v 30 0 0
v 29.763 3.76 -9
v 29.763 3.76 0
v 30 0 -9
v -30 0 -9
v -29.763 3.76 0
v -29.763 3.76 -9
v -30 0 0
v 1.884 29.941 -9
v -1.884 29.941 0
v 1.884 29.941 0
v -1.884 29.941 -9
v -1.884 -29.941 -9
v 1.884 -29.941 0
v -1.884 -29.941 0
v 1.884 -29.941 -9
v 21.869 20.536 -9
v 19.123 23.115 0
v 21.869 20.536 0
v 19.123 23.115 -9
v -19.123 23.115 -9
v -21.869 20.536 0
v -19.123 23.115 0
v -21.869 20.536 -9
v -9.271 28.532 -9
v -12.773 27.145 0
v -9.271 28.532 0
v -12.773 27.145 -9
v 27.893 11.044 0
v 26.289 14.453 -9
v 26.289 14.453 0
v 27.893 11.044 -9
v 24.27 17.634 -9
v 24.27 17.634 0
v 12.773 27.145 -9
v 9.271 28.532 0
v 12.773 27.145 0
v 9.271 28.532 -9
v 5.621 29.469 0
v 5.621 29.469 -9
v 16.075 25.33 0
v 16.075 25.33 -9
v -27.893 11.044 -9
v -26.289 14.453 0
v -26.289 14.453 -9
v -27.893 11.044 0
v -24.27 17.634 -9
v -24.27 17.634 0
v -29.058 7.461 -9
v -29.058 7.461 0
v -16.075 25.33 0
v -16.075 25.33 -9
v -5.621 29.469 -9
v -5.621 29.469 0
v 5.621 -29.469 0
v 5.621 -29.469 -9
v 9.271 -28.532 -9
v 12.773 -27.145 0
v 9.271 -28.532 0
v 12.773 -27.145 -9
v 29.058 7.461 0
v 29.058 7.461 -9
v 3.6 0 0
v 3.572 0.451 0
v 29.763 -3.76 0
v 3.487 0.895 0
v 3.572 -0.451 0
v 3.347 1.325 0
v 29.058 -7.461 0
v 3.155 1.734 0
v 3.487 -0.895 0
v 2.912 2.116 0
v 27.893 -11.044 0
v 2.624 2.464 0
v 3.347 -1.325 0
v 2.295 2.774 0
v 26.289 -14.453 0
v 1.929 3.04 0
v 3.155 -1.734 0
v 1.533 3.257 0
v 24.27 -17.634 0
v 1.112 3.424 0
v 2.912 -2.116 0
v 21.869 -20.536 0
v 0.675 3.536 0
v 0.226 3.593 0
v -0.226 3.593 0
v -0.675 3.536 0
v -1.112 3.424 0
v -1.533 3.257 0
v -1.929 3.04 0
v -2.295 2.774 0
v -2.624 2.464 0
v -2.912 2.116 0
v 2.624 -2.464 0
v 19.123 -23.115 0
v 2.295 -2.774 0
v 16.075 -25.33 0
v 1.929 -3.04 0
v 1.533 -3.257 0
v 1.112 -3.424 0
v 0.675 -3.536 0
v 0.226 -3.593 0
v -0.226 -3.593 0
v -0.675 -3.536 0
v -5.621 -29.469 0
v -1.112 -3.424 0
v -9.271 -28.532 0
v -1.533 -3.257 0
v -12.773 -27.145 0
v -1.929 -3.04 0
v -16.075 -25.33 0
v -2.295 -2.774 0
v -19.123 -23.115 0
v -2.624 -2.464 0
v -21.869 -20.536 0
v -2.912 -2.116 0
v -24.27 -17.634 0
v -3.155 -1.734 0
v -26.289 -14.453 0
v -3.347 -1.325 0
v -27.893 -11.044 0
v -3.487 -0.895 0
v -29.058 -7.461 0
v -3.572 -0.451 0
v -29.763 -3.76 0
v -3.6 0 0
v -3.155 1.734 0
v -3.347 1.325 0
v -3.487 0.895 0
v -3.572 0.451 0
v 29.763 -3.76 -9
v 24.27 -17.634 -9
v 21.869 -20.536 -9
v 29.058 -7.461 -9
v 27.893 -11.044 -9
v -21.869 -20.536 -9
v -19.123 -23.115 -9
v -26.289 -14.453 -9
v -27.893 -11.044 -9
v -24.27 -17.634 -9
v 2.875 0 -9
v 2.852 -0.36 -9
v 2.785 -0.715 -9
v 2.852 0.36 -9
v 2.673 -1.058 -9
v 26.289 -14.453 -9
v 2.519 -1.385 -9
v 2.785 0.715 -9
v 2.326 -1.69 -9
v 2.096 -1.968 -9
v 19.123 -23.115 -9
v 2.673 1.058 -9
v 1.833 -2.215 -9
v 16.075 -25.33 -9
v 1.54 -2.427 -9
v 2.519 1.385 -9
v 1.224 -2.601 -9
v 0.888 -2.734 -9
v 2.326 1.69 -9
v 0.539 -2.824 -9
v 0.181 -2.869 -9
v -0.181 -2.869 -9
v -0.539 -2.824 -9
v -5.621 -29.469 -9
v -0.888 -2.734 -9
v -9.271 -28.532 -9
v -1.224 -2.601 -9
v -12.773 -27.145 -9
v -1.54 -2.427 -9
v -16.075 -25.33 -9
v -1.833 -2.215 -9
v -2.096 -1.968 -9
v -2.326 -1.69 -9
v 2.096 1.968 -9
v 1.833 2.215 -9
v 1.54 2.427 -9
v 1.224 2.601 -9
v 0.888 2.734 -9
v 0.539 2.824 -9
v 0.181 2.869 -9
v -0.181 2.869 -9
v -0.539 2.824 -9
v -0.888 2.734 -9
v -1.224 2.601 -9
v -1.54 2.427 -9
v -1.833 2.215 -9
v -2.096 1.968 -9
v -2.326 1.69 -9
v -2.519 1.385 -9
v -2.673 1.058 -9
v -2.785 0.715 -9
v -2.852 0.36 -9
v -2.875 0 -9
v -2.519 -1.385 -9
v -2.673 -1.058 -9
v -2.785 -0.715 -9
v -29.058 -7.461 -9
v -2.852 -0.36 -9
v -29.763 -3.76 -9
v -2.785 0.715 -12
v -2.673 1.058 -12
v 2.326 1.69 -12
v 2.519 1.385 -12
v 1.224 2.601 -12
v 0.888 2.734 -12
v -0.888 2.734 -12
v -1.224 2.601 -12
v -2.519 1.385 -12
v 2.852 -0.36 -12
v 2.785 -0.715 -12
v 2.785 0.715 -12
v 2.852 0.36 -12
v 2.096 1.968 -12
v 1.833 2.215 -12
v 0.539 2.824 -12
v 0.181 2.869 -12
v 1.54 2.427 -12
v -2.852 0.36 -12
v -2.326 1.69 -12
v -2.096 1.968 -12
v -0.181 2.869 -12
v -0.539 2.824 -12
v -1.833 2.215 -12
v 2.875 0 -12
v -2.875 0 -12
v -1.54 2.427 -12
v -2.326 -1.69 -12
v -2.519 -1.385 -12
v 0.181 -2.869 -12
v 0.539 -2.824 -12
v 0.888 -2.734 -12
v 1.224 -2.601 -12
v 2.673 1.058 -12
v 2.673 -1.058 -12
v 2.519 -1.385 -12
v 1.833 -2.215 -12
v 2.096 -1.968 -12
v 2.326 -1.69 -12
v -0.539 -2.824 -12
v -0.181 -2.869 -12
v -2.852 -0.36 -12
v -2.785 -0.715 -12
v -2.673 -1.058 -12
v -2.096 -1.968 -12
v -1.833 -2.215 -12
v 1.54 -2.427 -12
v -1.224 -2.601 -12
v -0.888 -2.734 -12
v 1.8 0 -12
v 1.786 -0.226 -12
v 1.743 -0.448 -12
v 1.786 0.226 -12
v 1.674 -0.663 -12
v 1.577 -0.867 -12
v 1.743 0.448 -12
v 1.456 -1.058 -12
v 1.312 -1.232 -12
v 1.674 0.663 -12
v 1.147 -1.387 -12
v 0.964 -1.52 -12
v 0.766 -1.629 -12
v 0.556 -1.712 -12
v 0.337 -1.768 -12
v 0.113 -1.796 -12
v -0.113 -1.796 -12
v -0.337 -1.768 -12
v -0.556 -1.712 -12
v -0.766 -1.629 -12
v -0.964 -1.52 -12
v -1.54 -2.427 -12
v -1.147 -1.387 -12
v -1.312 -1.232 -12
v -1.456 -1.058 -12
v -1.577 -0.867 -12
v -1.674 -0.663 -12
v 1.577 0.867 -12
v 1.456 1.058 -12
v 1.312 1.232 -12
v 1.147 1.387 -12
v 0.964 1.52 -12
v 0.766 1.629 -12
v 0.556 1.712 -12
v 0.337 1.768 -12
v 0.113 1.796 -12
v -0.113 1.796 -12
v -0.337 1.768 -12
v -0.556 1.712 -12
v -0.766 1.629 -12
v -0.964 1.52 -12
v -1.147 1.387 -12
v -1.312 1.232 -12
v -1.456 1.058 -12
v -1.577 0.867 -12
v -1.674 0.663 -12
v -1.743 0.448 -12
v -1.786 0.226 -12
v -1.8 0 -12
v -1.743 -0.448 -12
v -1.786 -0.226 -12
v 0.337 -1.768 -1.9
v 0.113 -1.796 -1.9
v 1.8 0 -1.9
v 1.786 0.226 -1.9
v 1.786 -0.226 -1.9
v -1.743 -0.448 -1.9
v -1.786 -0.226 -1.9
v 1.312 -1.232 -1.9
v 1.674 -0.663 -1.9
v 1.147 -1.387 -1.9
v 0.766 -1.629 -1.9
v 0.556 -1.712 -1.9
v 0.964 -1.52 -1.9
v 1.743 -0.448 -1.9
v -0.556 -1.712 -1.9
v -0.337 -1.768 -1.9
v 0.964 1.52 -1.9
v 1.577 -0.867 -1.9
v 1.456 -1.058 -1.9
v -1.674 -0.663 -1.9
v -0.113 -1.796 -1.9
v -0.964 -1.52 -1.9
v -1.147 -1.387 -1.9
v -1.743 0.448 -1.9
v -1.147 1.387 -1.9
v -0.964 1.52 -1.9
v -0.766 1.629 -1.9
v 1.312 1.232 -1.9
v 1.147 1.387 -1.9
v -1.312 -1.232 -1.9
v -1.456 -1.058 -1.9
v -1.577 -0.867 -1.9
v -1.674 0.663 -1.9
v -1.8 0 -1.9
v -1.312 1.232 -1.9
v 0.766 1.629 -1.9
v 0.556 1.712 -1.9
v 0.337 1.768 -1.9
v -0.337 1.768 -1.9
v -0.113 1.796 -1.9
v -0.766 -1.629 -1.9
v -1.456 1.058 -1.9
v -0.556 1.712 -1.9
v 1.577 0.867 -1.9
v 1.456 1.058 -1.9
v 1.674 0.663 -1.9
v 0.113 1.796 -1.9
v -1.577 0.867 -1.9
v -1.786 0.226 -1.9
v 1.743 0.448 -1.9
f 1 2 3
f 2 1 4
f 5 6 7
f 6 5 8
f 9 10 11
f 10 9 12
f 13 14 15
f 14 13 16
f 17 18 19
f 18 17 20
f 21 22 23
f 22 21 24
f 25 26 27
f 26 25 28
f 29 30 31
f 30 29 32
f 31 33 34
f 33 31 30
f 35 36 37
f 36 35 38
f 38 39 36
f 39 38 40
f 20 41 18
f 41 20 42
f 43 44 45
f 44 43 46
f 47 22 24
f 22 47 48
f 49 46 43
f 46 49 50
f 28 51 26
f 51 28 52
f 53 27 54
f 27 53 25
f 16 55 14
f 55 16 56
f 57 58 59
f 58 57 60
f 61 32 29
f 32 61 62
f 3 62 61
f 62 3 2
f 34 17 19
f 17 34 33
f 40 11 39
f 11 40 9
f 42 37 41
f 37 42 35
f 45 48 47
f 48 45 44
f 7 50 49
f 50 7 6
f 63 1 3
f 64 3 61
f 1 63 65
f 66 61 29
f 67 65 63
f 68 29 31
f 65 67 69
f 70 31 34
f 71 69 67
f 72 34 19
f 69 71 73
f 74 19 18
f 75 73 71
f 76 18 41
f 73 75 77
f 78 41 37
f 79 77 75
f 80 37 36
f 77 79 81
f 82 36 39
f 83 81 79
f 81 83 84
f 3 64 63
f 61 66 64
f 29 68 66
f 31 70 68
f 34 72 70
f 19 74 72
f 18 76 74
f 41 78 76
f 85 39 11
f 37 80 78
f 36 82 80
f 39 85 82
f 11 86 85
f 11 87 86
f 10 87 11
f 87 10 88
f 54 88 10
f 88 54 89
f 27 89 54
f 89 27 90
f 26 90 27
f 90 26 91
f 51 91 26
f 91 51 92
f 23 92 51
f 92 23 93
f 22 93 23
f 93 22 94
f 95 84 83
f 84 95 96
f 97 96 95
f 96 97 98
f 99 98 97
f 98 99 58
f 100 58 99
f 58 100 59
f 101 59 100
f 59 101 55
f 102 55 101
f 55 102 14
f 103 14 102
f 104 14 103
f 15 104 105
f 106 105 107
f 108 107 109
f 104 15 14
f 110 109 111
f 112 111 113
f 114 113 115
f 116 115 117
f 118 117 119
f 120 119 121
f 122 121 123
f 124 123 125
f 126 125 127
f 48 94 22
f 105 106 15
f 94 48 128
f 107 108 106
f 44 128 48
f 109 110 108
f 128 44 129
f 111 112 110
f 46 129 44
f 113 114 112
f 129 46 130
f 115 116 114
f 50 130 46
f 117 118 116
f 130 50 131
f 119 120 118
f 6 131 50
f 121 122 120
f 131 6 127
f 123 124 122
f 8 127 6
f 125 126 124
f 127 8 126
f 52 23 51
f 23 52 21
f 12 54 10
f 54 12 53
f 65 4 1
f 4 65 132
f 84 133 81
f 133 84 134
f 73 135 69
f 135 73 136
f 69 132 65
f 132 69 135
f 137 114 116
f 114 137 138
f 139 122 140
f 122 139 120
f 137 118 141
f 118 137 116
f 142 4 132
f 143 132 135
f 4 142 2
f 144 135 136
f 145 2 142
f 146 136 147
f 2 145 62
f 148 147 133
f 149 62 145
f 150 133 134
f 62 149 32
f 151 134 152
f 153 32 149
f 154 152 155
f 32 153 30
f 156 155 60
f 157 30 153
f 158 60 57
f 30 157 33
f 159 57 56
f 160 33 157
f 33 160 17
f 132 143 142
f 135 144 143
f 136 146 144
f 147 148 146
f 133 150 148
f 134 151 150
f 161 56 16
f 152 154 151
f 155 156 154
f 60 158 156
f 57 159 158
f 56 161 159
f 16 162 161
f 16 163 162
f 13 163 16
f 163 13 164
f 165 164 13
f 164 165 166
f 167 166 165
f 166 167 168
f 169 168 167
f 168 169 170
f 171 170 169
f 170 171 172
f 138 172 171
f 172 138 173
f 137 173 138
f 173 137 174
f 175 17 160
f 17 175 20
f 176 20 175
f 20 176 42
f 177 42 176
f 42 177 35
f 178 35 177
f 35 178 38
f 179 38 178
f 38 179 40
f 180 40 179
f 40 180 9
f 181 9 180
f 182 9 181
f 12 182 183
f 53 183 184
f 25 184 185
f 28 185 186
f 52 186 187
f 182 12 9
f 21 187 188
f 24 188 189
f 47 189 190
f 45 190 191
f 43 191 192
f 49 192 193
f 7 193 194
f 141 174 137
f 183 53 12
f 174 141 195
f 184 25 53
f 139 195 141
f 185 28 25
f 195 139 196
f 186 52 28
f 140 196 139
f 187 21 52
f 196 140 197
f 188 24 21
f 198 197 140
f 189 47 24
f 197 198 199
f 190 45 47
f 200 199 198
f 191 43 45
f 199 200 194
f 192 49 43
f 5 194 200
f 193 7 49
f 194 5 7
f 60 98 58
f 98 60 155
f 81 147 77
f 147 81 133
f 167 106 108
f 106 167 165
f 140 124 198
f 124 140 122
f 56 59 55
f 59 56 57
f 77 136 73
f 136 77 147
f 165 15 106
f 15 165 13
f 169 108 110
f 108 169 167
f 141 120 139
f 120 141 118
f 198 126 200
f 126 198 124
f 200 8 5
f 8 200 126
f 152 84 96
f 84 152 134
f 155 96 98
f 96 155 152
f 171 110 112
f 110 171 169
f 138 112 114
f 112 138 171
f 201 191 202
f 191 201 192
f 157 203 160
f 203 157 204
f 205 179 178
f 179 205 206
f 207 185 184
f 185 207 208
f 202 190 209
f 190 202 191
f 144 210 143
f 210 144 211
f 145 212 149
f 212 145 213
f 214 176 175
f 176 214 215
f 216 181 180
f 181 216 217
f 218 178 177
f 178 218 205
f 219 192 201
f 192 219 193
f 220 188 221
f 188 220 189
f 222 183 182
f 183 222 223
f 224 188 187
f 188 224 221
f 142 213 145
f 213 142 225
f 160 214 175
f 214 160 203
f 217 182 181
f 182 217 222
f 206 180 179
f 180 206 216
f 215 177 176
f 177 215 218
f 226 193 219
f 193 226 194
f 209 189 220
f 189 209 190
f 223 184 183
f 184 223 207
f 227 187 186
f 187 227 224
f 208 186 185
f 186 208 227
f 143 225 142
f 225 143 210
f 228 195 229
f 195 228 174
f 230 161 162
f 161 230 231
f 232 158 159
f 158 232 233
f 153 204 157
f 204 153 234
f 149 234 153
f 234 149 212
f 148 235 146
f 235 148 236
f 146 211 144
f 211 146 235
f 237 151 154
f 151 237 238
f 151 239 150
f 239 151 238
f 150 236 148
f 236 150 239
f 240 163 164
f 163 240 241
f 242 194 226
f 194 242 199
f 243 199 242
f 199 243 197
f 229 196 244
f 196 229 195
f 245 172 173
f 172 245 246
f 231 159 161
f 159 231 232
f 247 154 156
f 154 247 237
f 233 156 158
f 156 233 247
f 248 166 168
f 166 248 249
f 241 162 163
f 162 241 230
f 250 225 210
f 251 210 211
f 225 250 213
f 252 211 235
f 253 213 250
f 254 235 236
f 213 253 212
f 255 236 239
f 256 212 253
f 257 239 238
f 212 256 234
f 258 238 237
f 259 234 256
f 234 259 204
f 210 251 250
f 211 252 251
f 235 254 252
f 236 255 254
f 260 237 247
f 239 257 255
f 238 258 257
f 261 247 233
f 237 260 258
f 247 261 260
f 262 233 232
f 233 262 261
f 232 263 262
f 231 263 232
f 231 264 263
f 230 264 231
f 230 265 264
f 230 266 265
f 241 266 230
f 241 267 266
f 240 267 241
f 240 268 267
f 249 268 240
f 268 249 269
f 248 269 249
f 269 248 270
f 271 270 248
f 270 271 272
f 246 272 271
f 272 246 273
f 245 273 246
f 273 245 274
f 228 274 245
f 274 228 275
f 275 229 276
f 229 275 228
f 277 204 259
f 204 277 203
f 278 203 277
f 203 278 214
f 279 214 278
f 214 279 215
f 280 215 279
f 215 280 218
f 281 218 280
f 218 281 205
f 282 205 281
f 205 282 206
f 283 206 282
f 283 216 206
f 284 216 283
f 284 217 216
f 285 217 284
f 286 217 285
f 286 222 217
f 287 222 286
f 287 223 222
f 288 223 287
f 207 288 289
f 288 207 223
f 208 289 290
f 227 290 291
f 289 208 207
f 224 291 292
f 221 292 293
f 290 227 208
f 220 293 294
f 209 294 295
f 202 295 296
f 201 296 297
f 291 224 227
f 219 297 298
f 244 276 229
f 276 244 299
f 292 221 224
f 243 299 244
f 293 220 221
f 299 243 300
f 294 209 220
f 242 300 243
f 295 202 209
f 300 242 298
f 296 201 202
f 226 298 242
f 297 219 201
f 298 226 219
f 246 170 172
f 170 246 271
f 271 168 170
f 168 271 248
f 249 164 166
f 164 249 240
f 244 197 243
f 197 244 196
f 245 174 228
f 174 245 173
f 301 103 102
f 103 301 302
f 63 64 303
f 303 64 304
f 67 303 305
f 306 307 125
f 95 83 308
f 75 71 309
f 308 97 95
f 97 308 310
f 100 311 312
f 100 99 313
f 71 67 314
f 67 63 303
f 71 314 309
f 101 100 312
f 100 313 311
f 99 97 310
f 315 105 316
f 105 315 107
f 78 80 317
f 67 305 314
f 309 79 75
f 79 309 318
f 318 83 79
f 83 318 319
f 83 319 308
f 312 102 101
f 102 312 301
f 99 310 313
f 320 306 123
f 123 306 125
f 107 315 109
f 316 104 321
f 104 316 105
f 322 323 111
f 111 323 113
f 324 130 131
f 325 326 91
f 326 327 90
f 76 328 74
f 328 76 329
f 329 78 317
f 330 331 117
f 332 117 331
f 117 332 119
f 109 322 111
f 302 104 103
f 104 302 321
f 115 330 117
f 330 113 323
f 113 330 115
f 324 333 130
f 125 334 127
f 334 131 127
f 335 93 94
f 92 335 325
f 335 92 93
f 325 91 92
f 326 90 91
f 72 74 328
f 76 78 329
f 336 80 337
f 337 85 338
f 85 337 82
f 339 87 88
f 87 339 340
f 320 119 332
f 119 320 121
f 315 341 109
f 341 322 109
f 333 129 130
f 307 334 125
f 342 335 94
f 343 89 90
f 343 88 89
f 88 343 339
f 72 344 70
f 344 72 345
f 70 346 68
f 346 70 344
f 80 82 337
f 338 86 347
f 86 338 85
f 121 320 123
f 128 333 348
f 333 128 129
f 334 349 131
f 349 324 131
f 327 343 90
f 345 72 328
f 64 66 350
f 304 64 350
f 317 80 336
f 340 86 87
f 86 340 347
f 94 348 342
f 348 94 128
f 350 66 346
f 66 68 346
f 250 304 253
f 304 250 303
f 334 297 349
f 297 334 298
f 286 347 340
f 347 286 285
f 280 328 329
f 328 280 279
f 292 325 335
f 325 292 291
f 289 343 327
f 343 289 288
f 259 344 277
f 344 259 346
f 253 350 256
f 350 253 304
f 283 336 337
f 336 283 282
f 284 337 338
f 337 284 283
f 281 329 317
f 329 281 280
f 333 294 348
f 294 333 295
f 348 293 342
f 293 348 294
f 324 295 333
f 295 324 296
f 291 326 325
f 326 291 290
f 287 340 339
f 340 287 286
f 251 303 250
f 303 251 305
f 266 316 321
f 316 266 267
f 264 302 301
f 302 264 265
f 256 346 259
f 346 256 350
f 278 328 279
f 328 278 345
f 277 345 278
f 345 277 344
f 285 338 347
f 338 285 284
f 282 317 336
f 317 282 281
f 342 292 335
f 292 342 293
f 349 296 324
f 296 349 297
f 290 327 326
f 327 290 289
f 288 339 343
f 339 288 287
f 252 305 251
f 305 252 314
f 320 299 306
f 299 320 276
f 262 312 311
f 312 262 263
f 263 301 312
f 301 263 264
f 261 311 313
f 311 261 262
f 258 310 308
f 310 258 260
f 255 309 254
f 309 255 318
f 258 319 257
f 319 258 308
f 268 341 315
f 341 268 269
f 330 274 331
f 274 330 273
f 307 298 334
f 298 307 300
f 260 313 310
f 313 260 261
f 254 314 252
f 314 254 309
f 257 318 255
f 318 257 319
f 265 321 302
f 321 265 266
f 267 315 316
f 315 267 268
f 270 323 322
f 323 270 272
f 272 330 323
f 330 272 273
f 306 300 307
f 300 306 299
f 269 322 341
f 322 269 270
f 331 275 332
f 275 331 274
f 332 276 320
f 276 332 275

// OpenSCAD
$fn = 50;


difference() {
	union() {
		translate(v = [0, 0, -9.0000000000]) {
			cylinder(h = 9, r = 30.0000000000);
		}
		translate(v = [0, 0, -12.0000000000]) {
			cylinder(h = 12, r = 2.8750000000);
		}
	}
	union() {
		translate(v = [0, 0, 0]) {
			rotate(a = [0, 0, 0]) {
				difference() {
					union() {
						translate(v = [0, 0, -12.0000000000]) {
							cylinder(h = 12, r = 1.5000000000);
						}
						translate(v = [0, 0, -1.9000000000]) {
							cylinder(h = 1.9000000000, r1 = 1.8000000000, r2 = 3.6000000000);
						}
						translate(v = [0, 0, -12.0000000000]) {
							cylinder(h = 12, r = 1.8000000000);
						}
						translate(v = [0, 0, -12.0000000000]) {
							cylinder(h = 12, r = 1.5000000000);
						}
					}
					union();
				}
			}
		}
	}
}
